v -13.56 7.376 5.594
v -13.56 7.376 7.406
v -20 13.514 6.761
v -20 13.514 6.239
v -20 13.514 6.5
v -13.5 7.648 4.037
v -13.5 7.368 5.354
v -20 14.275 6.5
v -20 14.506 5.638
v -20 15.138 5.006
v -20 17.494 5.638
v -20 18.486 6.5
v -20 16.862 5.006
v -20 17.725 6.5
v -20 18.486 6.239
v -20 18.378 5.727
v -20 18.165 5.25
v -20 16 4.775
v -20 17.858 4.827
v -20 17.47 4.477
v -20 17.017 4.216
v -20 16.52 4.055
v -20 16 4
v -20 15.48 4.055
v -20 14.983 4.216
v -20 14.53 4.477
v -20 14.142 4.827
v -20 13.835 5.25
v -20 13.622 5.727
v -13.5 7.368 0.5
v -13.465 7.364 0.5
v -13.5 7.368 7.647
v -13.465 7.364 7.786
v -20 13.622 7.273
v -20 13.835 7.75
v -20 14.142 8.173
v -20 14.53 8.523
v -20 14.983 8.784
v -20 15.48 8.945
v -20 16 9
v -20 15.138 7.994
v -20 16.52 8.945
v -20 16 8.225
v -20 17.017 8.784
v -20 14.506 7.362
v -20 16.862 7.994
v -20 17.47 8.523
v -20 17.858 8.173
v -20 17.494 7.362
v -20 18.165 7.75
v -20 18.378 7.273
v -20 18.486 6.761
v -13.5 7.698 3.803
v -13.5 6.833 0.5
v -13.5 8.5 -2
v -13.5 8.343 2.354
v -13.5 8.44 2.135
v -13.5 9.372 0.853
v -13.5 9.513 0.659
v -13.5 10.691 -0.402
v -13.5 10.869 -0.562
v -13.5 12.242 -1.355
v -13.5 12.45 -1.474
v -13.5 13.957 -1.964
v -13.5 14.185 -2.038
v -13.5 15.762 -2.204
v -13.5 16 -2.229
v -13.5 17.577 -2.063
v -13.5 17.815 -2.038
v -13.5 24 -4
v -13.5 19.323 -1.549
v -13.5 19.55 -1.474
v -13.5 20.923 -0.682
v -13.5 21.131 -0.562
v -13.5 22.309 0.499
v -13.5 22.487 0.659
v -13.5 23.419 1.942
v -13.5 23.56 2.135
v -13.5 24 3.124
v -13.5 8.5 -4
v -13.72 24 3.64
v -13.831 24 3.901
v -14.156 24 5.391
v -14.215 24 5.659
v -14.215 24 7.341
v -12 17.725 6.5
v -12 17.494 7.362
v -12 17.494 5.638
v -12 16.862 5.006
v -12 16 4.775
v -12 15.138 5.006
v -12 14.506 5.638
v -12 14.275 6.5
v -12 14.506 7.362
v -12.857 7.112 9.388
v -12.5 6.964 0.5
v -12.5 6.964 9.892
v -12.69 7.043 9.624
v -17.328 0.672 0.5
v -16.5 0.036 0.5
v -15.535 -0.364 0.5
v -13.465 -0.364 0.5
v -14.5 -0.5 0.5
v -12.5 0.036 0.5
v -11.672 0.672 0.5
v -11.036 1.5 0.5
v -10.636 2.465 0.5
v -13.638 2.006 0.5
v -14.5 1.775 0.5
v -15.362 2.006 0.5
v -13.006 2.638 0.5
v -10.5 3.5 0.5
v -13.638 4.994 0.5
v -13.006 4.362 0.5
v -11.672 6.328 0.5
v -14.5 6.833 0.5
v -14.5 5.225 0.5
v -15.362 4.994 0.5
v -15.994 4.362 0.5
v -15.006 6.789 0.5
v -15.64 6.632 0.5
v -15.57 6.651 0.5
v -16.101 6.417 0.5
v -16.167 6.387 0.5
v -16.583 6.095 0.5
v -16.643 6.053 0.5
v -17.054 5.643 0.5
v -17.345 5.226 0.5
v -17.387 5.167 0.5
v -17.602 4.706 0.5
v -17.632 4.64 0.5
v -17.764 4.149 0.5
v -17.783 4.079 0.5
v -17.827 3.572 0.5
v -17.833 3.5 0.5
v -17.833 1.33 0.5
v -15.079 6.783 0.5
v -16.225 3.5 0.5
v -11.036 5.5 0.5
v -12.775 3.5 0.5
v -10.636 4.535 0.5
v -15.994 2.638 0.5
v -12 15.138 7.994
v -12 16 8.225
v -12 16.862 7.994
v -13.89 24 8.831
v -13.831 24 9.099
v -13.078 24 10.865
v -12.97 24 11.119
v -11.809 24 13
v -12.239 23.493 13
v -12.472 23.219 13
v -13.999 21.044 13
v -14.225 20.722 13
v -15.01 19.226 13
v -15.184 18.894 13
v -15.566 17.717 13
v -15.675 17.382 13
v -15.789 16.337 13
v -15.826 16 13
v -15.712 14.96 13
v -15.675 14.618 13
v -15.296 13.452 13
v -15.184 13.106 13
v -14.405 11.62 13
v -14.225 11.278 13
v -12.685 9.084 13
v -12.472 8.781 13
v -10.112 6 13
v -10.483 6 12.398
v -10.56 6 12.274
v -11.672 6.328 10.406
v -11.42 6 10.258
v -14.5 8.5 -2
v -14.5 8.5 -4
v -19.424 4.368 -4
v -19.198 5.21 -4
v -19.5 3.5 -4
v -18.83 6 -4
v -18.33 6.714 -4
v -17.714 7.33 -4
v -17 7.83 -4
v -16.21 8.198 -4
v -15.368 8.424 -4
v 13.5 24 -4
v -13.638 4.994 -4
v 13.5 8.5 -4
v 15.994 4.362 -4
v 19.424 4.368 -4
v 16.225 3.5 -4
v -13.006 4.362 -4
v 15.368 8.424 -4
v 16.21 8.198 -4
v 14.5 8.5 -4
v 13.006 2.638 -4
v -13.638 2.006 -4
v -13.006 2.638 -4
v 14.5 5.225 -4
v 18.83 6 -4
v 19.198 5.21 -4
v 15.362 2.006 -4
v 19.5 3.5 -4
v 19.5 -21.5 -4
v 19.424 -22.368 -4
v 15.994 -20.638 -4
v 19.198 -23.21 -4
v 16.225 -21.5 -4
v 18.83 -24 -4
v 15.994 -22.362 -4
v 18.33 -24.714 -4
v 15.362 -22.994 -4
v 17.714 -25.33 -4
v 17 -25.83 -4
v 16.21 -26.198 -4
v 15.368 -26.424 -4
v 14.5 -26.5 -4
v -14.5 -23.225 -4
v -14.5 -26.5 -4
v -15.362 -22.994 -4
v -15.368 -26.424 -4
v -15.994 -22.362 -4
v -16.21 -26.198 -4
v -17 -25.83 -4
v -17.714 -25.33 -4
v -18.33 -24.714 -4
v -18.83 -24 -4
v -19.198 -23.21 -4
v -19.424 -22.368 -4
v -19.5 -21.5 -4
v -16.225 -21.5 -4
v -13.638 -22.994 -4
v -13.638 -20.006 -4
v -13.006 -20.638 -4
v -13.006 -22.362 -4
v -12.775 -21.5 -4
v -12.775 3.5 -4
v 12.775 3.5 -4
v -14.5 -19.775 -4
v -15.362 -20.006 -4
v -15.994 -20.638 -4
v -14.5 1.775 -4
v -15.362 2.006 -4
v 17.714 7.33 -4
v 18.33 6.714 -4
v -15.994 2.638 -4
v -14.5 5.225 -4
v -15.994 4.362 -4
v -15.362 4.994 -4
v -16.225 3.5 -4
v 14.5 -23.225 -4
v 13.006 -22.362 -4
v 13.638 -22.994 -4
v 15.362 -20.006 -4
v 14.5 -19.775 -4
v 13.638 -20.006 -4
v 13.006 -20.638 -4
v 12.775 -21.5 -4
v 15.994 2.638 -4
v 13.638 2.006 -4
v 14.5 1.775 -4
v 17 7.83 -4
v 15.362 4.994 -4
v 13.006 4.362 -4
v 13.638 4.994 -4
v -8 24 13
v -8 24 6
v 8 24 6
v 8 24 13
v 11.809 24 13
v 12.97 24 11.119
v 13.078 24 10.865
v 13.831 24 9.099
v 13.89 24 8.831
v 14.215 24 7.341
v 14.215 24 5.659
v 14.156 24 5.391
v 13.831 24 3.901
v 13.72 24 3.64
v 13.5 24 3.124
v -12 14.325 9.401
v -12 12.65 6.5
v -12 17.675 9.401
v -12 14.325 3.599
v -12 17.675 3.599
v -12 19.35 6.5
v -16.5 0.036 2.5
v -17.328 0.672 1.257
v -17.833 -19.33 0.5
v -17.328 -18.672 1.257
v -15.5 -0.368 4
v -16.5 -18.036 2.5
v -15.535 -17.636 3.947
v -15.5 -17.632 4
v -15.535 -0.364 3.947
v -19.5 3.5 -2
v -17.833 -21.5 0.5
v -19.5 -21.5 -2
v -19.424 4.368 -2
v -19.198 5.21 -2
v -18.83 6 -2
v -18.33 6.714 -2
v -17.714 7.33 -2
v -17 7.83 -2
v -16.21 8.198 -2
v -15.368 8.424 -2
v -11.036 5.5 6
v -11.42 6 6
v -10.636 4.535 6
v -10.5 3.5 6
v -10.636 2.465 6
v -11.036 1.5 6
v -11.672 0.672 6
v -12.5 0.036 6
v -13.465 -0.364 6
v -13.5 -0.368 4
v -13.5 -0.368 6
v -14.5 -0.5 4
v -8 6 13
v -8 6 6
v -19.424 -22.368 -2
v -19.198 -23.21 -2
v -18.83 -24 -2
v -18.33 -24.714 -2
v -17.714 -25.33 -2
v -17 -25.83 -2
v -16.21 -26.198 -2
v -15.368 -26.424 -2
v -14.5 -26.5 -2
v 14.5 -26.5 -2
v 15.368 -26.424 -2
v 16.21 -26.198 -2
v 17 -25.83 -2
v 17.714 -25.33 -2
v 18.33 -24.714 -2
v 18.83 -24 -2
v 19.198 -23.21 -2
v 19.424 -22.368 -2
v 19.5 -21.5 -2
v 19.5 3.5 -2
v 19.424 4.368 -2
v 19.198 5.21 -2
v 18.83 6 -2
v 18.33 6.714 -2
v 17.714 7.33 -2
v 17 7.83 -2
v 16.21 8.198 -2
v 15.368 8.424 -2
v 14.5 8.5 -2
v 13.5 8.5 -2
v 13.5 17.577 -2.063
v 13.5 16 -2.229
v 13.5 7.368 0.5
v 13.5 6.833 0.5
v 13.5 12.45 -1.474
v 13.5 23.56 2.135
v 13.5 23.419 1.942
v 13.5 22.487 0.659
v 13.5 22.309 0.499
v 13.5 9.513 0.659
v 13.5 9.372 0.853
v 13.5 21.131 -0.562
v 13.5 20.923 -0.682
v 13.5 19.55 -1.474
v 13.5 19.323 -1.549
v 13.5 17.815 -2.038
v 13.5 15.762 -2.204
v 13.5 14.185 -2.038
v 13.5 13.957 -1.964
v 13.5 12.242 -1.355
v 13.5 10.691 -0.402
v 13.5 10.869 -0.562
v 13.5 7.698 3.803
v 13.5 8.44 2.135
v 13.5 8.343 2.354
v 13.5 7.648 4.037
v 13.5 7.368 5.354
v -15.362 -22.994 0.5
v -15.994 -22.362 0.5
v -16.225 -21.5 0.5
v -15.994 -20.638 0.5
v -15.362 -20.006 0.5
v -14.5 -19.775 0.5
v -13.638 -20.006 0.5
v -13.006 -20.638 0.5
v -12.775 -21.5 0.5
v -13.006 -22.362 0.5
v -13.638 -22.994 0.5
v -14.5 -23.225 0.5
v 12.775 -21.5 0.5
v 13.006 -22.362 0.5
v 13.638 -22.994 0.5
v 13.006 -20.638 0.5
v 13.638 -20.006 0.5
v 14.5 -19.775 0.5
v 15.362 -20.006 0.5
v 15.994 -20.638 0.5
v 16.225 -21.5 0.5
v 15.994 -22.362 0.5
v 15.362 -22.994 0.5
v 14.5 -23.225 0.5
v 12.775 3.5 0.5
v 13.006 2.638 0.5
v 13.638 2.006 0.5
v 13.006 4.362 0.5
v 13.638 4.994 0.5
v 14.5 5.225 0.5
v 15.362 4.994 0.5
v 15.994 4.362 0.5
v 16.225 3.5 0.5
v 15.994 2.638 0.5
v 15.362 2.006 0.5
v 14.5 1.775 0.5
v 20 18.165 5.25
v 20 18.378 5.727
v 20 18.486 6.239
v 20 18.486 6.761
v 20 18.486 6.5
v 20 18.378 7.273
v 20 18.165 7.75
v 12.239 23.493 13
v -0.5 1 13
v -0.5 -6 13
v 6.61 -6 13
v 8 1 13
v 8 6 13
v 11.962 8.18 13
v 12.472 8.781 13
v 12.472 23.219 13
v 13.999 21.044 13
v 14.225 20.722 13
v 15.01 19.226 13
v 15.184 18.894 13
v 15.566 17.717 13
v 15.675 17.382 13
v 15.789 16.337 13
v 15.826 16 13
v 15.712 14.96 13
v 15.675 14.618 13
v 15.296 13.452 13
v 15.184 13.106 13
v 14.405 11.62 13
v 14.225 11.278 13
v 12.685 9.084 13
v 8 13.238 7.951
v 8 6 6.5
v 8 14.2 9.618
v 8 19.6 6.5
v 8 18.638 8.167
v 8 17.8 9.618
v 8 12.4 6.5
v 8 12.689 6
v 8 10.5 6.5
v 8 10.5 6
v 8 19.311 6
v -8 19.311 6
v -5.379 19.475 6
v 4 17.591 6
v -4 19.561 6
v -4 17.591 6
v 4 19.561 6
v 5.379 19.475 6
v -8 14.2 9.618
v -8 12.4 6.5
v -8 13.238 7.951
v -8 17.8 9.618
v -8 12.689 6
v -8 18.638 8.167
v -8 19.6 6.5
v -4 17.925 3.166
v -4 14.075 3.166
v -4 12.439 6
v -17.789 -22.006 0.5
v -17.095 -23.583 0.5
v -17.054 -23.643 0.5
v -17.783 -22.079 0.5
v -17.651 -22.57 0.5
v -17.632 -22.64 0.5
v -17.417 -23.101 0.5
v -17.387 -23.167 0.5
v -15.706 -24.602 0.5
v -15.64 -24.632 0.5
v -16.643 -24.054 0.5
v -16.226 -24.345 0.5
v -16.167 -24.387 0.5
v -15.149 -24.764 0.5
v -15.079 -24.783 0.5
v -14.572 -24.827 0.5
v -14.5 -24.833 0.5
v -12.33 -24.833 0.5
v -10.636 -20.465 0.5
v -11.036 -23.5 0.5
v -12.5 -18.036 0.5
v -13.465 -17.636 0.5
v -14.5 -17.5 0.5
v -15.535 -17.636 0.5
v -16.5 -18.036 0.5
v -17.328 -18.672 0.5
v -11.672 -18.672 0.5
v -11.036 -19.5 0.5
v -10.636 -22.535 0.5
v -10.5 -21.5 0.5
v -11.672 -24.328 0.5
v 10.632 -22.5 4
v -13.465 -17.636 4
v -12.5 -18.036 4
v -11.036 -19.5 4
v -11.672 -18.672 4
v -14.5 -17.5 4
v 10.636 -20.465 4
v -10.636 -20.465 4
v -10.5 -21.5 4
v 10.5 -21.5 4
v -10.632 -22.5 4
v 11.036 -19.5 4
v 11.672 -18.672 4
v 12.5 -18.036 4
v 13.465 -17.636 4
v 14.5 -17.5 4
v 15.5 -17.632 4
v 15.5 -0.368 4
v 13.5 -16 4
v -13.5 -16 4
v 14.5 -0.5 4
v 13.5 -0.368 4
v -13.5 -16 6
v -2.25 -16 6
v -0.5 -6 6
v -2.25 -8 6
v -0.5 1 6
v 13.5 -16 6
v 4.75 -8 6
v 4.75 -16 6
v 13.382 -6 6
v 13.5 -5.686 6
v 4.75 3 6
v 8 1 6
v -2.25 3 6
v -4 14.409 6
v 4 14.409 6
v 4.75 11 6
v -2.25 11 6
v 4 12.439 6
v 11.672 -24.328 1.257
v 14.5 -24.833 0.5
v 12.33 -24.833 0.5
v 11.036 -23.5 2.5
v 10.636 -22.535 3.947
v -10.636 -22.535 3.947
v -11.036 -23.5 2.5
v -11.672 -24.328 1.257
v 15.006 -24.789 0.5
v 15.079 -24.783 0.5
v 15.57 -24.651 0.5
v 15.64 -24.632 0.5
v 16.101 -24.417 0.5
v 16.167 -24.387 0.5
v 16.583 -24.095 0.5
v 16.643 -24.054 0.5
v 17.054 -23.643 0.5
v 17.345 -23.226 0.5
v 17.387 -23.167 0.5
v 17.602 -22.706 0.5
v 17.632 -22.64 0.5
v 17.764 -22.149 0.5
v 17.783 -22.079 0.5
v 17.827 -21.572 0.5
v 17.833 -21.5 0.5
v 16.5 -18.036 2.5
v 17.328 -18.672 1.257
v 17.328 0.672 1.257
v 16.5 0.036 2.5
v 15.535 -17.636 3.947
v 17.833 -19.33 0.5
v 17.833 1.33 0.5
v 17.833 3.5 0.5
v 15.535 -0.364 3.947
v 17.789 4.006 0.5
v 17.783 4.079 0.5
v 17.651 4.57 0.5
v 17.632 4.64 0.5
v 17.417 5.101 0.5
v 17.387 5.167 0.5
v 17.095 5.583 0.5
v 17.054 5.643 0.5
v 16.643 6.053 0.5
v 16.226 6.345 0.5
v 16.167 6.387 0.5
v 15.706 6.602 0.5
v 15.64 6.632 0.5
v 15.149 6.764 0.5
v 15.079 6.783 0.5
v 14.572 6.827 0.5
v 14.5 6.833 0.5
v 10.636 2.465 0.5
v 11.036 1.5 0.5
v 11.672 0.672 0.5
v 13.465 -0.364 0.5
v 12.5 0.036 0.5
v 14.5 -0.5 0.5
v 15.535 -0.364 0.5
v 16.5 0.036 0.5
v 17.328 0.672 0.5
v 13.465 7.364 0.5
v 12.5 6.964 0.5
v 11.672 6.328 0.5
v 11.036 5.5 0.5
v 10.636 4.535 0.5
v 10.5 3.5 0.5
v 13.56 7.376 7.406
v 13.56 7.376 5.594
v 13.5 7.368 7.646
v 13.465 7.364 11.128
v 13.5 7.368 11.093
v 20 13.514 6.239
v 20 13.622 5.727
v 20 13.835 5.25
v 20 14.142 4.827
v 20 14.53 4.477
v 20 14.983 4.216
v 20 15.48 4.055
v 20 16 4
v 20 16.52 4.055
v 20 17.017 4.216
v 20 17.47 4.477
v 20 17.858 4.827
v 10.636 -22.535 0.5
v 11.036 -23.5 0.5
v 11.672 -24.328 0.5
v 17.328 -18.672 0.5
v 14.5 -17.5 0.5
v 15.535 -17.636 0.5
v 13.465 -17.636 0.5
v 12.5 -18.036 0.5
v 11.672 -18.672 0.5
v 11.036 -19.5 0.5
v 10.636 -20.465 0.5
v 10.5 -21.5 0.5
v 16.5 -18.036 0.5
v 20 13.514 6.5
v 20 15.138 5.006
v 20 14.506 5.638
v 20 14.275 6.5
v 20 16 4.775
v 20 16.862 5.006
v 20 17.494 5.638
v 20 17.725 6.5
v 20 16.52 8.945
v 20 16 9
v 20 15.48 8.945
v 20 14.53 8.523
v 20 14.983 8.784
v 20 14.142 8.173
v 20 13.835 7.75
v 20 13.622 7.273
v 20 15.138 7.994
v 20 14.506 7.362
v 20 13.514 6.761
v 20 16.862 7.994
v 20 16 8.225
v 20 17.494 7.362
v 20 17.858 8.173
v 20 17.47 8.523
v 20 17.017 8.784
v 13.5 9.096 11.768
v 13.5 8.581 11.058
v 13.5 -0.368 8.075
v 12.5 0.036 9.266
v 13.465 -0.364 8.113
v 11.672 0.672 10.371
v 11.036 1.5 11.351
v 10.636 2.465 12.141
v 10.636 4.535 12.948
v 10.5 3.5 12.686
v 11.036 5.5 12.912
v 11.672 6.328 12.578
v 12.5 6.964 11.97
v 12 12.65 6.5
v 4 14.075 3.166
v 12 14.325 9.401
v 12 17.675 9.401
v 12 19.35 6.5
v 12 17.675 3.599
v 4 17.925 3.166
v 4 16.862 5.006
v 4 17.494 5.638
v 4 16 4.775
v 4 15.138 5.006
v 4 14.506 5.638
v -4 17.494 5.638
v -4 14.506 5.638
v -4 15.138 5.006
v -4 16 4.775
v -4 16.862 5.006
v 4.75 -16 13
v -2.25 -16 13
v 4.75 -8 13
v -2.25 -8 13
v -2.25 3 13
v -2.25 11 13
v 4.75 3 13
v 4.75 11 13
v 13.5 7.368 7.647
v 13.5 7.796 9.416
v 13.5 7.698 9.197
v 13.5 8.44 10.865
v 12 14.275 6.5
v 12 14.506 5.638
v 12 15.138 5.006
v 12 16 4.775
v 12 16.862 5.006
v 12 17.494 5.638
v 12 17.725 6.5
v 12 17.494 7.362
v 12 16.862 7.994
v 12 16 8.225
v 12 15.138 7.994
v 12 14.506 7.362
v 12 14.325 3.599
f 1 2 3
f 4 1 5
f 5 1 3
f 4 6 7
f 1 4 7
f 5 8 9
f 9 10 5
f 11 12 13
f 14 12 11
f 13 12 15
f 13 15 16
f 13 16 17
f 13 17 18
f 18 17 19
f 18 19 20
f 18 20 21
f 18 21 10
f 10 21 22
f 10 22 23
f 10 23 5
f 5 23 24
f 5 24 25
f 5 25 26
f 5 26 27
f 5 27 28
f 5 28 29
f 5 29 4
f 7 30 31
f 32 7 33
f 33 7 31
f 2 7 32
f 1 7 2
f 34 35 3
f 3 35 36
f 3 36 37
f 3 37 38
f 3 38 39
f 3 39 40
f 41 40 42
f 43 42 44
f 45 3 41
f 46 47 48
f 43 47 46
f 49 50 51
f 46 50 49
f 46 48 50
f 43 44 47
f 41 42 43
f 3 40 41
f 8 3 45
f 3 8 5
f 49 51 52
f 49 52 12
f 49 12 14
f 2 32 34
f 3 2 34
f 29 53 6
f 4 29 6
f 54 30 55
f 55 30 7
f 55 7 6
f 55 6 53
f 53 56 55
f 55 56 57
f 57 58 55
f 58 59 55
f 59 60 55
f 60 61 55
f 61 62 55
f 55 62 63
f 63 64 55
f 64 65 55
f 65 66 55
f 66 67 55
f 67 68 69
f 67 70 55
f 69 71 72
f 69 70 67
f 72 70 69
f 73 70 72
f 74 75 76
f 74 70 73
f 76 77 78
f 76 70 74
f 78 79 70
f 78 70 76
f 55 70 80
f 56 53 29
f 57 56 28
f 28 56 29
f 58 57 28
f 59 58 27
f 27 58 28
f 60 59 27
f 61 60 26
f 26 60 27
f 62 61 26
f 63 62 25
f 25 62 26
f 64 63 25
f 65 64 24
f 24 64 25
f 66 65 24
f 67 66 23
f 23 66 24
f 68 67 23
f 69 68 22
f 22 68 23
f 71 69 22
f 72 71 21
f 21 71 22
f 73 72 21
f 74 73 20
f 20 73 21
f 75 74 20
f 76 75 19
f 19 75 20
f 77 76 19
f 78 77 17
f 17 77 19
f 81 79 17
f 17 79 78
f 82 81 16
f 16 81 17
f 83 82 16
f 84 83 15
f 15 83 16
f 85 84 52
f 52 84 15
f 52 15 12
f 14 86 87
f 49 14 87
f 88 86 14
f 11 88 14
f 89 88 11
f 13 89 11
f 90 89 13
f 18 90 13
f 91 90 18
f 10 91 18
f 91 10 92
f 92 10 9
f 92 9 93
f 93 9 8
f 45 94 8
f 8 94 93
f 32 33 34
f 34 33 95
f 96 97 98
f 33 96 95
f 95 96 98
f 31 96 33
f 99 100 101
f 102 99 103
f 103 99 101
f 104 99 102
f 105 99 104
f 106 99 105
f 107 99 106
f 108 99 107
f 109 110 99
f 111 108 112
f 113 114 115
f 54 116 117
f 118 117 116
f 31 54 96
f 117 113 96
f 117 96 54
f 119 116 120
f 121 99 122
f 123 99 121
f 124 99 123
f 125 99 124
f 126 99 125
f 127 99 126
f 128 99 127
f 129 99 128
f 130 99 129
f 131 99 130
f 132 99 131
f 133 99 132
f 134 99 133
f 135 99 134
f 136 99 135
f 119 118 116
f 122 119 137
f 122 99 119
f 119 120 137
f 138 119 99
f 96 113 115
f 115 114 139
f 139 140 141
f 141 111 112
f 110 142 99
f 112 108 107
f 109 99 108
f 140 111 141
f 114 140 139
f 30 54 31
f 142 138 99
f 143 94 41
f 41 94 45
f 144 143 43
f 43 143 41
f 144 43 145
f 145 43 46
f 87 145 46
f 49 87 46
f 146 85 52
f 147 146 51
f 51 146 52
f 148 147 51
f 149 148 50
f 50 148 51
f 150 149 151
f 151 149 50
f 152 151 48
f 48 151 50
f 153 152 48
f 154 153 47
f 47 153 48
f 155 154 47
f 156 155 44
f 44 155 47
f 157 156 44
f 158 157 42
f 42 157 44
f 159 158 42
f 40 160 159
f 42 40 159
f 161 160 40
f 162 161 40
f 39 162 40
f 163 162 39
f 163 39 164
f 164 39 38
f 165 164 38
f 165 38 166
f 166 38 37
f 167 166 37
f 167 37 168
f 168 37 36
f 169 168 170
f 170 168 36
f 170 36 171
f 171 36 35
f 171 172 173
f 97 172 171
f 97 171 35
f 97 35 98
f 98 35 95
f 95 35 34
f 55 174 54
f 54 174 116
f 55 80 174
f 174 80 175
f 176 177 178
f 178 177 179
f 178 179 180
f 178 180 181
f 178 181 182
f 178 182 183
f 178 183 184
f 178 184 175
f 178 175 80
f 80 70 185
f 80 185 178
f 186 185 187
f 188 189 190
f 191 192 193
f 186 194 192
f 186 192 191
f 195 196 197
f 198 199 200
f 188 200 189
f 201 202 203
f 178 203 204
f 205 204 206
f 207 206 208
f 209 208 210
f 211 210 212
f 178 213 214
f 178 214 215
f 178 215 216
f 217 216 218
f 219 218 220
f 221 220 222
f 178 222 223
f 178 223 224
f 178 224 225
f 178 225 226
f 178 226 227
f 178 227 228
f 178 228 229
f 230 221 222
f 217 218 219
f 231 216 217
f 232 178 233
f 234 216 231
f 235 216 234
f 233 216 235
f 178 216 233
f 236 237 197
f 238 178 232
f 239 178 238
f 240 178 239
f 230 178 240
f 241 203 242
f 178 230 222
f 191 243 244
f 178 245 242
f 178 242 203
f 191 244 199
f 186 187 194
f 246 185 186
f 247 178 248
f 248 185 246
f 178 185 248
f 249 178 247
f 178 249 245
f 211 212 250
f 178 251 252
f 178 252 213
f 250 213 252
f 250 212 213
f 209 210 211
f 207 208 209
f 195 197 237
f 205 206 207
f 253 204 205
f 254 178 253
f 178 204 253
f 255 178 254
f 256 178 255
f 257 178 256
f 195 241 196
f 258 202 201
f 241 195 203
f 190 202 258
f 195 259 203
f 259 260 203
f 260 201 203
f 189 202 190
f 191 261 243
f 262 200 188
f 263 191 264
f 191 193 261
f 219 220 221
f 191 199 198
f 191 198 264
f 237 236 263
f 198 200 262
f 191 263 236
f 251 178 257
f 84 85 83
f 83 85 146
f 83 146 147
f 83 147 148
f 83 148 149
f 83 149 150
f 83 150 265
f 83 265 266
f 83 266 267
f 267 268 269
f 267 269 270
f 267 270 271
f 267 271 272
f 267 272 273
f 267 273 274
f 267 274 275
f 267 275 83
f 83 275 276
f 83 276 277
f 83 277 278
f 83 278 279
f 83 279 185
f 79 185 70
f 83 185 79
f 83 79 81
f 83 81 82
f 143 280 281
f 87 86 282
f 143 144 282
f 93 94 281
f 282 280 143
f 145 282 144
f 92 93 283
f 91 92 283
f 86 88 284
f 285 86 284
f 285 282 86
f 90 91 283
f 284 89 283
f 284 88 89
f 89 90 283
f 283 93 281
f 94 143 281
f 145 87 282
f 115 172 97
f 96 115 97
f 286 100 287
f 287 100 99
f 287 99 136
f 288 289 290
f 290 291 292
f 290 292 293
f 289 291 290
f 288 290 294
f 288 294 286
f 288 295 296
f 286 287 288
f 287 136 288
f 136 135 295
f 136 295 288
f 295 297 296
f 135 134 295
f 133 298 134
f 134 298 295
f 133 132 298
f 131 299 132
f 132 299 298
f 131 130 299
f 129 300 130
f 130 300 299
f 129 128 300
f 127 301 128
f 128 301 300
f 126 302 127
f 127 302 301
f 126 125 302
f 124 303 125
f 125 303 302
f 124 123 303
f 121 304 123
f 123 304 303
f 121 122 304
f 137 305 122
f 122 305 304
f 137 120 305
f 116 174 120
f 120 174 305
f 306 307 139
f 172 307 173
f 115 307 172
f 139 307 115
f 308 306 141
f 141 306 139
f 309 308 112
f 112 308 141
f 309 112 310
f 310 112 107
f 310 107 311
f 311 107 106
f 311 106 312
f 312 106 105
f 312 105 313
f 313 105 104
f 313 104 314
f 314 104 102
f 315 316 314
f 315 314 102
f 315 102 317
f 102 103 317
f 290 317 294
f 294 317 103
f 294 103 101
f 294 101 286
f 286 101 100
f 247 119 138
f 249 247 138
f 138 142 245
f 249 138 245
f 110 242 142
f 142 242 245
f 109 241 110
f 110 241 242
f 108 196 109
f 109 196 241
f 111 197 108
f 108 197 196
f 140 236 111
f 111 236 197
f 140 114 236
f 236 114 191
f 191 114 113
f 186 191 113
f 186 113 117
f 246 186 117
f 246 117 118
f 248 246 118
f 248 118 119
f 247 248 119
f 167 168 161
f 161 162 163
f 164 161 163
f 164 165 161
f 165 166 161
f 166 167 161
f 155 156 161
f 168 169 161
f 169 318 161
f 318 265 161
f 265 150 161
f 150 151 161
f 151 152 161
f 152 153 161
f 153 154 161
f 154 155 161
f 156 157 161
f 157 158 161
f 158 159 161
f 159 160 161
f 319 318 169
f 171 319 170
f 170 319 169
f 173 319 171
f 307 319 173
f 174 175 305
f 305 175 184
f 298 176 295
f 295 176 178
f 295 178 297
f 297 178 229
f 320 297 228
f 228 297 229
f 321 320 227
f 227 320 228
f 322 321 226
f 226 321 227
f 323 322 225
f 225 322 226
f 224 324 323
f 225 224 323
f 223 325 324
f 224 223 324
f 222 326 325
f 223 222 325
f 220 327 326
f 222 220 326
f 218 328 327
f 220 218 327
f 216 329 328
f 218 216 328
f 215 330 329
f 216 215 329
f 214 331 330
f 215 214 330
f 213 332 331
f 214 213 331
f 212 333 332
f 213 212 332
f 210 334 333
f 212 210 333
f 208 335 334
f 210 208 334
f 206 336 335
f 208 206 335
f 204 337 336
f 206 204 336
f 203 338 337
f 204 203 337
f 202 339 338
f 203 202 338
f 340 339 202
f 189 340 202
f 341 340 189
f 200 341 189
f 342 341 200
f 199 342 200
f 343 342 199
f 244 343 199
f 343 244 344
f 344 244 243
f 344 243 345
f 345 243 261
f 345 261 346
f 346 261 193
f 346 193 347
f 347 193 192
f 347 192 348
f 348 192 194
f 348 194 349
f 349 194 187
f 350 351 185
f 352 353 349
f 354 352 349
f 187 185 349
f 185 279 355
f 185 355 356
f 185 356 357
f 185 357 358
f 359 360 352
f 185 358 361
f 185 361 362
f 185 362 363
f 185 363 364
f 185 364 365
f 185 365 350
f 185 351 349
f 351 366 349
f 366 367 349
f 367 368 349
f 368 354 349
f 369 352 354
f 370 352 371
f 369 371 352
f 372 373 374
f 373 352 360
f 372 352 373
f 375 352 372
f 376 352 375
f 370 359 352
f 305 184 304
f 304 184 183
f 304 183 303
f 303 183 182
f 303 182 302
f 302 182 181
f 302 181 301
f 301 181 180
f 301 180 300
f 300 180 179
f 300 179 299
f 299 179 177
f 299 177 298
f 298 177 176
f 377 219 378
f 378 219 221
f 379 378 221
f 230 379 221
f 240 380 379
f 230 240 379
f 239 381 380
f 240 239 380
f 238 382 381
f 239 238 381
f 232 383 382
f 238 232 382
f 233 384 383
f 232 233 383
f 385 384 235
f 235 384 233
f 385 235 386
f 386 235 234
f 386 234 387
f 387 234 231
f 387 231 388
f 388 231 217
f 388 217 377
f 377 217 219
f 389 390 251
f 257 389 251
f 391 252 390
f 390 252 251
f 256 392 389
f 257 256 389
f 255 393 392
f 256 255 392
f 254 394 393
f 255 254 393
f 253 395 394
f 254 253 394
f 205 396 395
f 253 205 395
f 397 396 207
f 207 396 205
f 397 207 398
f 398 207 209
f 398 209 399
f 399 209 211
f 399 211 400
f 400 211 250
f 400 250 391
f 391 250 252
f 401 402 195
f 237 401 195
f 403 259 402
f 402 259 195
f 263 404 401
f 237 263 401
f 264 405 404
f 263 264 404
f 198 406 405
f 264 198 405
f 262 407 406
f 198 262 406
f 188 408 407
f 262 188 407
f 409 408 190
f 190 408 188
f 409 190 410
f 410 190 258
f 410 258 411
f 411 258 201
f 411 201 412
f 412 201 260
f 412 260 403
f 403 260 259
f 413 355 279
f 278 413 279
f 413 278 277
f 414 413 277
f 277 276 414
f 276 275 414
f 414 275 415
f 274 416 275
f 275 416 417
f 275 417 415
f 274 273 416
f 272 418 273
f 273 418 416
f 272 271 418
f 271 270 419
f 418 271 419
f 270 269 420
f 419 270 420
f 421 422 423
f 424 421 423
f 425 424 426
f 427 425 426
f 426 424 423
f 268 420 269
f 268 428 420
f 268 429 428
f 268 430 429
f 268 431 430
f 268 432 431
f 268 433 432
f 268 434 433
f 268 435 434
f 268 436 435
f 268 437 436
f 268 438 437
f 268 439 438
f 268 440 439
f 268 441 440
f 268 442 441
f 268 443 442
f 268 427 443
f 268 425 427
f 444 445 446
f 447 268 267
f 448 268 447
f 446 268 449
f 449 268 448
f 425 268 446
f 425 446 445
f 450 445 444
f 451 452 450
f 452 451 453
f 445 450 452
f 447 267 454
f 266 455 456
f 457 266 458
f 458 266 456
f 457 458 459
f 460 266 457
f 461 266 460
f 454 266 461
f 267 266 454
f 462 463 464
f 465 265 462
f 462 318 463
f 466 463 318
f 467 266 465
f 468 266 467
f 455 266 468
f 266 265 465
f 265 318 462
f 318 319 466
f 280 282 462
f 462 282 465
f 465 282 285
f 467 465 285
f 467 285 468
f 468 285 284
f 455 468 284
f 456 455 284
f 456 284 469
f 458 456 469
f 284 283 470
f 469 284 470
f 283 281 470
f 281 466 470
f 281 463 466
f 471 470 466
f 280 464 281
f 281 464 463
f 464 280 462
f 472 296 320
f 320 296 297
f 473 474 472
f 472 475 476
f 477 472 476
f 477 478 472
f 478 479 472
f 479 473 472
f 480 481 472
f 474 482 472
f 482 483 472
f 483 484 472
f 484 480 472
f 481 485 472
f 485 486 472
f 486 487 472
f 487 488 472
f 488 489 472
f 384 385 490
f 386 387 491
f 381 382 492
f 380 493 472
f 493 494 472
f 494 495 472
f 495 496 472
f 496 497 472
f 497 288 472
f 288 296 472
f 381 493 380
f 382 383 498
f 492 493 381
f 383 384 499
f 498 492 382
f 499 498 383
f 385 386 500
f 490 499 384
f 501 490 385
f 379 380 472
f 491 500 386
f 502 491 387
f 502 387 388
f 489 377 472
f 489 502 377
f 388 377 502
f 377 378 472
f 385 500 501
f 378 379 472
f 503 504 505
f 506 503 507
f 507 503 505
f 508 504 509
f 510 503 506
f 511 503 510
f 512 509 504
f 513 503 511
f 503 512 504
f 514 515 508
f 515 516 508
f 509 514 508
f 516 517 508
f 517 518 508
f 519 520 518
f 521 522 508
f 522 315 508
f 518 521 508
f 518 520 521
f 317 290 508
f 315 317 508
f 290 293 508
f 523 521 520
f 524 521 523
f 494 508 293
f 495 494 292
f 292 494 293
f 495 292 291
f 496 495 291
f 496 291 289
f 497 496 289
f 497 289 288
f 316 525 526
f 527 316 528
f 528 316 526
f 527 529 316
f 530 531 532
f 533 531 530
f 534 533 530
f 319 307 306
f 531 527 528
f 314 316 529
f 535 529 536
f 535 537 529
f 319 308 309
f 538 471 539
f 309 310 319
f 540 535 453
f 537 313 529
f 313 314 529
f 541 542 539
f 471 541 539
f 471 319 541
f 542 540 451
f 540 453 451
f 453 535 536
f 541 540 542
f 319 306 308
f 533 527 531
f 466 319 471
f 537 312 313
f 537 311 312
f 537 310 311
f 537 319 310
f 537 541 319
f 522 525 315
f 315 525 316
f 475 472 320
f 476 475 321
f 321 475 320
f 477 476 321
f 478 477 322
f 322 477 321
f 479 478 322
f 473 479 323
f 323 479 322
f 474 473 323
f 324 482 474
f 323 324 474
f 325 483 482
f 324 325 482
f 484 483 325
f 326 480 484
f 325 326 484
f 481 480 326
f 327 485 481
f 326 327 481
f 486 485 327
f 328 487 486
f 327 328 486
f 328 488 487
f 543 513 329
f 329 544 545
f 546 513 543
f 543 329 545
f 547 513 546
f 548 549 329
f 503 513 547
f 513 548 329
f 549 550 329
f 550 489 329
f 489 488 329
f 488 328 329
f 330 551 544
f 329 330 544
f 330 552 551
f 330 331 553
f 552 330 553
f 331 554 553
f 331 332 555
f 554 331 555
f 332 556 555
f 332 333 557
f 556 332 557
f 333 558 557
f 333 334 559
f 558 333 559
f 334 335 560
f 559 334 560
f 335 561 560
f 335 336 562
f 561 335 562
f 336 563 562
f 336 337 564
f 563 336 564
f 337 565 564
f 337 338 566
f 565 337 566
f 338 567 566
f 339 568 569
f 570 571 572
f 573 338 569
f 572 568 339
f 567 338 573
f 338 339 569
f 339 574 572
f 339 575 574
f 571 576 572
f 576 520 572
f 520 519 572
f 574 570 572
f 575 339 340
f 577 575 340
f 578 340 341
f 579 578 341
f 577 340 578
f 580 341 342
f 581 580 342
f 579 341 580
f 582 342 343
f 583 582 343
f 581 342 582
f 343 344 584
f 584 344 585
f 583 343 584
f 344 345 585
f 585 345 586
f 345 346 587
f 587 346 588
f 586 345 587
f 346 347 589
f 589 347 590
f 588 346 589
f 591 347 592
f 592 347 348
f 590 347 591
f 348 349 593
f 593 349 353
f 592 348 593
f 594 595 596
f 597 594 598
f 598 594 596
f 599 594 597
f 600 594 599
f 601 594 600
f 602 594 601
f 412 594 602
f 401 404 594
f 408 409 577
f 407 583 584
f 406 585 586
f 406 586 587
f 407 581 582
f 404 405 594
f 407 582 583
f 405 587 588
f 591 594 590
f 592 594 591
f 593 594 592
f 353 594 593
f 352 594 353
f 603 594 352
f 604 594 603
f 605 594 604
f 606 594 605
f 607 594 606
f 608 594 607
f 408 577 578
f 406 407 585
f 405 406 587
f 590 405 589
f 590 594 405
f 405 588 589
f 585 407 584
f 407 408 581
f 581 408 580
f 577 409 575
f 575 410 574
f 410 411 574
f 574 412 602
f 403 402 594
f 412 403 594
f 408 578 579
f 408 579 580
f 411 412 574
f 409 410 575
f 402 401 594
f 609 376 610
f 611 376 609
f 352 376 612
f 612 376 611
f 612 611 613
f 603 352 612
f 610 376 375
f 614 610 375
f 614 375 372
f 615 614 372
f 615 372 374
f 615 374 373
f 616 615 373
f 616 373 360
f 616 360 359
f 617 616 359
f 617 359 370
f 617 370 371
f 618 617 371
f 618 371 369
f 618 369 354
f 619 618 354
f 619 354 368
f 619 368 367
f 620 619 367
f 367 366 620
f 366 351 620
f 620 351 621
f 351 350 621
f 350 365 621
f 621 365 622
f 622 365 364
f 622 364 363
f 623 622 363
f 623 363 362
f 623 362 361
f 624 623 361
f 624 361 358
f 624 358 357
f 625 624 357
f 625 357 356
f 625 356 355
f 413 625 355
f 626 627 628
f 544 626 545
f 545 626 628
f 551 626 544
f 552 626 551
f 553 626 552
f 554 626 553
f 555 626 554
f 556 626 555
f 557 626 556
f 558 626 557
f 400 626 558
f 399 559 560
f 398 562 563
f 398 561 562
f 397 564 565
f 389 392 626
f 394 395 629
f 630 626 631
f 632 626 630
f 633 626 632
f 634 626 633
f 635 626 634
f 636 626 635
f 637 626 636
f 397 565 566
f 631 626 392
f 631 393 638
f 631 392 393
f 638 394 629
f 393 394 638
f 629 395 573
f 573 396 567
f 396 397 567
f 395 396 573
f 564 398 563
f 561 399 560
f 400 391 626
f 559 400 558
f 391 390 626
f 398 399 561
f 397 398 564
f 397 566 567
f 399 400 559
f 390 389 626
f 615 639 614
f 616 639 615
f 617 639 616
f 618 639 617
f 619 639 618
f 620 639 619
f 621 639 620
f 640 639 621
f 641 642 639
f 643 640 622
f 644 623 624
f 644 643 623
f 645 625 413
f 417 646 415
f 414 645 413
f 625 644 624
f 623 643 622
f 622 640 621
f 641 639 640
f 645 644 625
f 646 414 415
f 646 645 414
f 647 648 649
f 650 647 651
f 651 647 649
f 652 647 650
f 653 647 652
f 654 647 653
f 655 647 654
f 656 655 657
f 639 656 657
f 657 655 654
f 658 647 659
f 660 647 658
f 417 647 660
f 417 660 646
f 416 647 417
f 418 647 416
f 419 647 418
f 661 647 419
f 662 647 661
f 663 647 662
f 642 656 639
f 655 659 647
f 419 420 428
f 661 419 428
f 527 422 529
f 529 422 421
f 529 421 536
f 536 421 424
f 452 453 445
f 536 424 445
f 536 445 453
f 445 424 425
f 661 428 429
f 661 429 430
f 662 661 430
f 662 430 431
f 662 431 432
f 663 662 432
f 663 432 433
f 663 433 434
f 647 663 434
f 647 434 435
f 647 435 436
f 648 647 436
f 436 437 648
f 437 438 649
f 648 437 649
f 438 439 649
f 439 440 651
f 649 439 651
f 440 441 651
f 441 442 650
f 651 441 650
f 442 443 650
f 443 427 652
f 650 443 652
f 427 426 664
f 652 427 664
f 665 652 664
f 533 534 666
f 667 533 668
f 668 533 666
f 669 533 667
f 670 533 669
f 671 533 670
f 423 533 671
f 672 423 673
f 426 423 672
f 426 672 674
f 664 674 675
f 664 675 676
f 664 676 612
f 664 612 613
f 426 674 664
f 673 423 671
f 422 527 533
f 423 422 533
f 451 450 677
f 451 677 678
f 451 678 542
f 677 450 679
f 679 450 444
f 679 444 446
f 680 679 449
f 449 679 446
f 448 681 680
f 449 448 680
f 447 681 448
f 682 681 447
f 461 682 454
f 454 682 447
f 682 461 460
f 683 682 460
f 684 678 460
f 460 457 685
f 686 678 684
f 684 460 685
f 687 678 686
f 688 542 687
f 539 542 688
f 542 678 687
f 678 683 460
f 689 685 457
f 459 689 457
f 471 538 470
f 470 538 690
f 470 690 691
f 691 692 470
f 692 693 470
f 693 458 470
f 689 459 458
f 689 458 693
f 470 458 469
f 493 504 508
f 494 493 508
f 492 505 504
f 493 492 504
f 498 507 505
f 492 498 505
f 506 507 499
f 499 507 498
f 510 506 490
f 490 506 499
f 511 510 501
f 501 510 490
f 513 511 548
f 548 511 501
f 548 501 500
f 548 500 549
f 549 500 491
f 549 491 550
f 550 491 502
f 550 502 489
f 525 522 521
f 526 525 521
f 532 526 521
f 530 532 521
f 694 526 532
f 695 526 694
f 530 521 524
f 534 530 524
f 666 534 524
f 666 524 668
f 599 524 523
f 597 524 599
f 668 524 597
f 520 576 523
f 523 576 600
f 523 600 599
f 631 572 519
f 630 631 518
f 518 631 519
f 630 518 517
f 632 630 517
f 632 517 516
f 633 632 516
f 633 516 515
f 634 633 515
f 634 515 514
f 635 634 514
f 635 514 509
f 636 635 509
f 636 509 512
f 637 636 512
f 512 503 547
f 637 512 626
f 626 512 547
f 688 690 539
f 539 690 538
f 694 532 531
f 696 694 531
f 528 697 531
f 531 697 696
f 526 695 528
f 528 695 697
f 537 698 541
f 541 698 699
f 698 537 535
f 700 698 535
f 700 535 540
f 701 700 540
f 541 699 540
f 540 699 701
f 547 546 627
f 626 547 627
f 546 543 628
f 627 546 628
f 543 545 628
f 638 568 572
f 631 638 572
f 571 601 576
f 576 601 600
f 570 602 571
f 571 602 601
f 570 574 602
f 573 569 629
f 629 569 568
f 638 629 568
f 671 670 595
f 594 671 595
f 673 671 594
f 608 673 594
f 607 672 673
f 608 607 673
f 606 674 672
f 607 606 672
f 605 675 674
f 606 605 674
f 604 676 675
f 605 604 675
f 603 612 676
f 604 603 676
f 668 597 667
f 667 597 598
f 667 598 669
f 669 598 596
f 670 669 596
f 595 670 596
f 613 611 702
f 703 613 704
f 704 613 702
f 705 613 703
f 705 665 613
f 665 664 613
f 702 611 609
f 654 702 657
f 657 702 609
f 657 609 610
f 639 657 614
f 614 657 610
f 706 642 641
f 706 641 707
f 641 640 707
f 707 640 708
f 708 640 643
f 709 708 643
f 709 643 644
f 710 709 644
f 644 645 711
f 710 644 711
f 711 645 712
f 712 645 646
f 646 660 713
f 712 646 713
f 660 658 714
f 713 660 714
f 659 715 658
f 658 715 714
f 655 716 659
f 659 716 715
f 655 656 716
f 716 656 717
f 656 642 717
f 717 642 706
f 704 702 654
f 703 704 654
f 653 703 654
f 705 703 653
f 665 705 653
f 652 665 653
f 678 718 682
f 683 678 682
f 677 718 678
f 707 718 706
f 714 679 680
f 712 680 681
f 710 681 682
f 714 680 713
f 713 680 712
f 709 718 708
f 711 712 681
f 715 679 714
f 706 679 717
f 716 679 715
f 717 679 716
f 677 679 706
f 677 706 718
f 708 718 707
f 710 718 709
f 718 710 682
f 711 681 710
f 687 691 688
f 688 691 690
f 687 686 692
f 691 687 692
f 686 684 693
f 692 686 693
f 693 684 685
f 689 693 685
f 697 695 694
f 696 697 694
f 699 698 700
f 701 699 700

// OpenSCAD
// file: configuration.scad
// Increase this if your slicer or printer make holes too tight.
extra_radius = 0.1;

// OD = outside diameter, corner to corner.
m3_nut_od = 6.1;
m3_nut_radius = m3_nut_od/2 + 0.2 + extra_radius;
m3_washer_radius = 3.5 + extra_radius;

// Major diameter of metric 3mm thread.
m3_major = 2.85;
m3_radius = m3_major/2 + extra_radius;
m3_wide_radius = m3_major/2 + extra_radius + 0.2;

// NEMA17 stepper motors.
motor_shaft_diameter = 5;
motor_shaft_radius = motor_shaft_diameter/2 + extra_radius;

// Frame brackets. M3x8mm screws work best with 3.6 mm brackets.
thickness = 3.6;

// OpenBeam or Misumi. Currently only 15x15 mm, but there is a plan
// to make models more parametric and allow 20x20 mm in the future.
extrusion = 15;

// Placement for the NEMA17 stepper motors.
motor_offset = 44;
motor_length = 47;
// main file
include <configuration.scad>;

separation = 40;
thickness = 6;

horn_thickness = 13;
horn_x = 8;

belt_width = 5;
belt_x = 5.6;
belt_z = 7;

plate_thickness = 7;
plate_y = -9;
plate_w = 29;
plate_h = 25;
outside_radius = 5;

module plate(h) {
  minkowski() {
    cube([plate_w, plate_h, 2], center=true);
    cylinder(r1=outside_radius, r2=1, h=6, $fn=36);
  }
}

module carriage() {
  // Timing belt (up and down).
  translate([-belt_x, 0, belt_z + belt_width/2]) %
    cube([1.7, 100, belt_width], center=true);
  translate([belt_x, 0, belt_z + belt_width/2]) %
    cube([1.7, 100, belt_width], center=true);
  difference() {
    union() {
      translate([0, plate_y, -3])
        plate(plate_thickness);
      // Main body.
      translate([0, 4, thickness/2-2])
        cube([27, 40, thickness+4], center=true);
      // Ball joint mount horns.
      for (x = [-1, 1]) {
        scale([x, 1, 1]) intersection() {
          translate([0, 15, horn_thickness/2-2])
            cube([separation, 18, horn_thickness+4], center=true);
          translate([horn_x, 16, horn_thickness/2]) rotate([0, 90, 0])
            cylinder(r1=14, r2=2.5, h=separation/2-horn_x);
        }
      }
      // Belt clamps.
      difference() {
        union() {
          translate([6.5, -2.5, horn_thickness/2+1])
            cube([14, 7, horn_thickness-2], center=true);
          translate([10.75, 2.5, horn_thickness/2+1])
            cube([5.5, 16, horn_thickness-2], center=true);
        }
        // Avoid touching diagonal push rods (carbon tube).
        translate([20, -10, 12.5]) rotate([35, 35, 30])
          cube([40, 40, 20], center=true);
      }
      for (y = [-12, 7]) {
        translate([1.25, y, horn_thickness/2+1])
          cube([7, 8, horn_thickness-2], center=true);
      }
    }
    // Screws for linear slider.
    for (x = [-plate_w/2, plate_w/2]) {
      for (y = [-plate_h/2, plate_h/2]) {
        translate([x, y+plate_y, 0]) #
          cylinder(r=m3_wide_radius, h=30, center=true, $fn=12);
        translate([x, y+plate_y, 0.5]) #
          cylinder(r=4, h=30, $fn=24);
      }
    }
    // Screws for ball joints.
    translate([0, 16, horn_thickness/2]) rotate([0, 90, 0]) #
      cylinder(r=m3_wide_radius, h=60, center=true, $fn=12);
    // Lock nuts for ball joints.
    for (x = [-1, 1]) {
      scale([x, 1, 1]) intersection() {
        translate([horn_x, 16, horn_thickness/2]) rotate([90, 0, -90])
          cylinder(r1=m3_nut_radius, r2=m3_nut_radius+0.5, h=8,
                   center=true, $fn=6);
      }
    }
  }
}

carriage();
